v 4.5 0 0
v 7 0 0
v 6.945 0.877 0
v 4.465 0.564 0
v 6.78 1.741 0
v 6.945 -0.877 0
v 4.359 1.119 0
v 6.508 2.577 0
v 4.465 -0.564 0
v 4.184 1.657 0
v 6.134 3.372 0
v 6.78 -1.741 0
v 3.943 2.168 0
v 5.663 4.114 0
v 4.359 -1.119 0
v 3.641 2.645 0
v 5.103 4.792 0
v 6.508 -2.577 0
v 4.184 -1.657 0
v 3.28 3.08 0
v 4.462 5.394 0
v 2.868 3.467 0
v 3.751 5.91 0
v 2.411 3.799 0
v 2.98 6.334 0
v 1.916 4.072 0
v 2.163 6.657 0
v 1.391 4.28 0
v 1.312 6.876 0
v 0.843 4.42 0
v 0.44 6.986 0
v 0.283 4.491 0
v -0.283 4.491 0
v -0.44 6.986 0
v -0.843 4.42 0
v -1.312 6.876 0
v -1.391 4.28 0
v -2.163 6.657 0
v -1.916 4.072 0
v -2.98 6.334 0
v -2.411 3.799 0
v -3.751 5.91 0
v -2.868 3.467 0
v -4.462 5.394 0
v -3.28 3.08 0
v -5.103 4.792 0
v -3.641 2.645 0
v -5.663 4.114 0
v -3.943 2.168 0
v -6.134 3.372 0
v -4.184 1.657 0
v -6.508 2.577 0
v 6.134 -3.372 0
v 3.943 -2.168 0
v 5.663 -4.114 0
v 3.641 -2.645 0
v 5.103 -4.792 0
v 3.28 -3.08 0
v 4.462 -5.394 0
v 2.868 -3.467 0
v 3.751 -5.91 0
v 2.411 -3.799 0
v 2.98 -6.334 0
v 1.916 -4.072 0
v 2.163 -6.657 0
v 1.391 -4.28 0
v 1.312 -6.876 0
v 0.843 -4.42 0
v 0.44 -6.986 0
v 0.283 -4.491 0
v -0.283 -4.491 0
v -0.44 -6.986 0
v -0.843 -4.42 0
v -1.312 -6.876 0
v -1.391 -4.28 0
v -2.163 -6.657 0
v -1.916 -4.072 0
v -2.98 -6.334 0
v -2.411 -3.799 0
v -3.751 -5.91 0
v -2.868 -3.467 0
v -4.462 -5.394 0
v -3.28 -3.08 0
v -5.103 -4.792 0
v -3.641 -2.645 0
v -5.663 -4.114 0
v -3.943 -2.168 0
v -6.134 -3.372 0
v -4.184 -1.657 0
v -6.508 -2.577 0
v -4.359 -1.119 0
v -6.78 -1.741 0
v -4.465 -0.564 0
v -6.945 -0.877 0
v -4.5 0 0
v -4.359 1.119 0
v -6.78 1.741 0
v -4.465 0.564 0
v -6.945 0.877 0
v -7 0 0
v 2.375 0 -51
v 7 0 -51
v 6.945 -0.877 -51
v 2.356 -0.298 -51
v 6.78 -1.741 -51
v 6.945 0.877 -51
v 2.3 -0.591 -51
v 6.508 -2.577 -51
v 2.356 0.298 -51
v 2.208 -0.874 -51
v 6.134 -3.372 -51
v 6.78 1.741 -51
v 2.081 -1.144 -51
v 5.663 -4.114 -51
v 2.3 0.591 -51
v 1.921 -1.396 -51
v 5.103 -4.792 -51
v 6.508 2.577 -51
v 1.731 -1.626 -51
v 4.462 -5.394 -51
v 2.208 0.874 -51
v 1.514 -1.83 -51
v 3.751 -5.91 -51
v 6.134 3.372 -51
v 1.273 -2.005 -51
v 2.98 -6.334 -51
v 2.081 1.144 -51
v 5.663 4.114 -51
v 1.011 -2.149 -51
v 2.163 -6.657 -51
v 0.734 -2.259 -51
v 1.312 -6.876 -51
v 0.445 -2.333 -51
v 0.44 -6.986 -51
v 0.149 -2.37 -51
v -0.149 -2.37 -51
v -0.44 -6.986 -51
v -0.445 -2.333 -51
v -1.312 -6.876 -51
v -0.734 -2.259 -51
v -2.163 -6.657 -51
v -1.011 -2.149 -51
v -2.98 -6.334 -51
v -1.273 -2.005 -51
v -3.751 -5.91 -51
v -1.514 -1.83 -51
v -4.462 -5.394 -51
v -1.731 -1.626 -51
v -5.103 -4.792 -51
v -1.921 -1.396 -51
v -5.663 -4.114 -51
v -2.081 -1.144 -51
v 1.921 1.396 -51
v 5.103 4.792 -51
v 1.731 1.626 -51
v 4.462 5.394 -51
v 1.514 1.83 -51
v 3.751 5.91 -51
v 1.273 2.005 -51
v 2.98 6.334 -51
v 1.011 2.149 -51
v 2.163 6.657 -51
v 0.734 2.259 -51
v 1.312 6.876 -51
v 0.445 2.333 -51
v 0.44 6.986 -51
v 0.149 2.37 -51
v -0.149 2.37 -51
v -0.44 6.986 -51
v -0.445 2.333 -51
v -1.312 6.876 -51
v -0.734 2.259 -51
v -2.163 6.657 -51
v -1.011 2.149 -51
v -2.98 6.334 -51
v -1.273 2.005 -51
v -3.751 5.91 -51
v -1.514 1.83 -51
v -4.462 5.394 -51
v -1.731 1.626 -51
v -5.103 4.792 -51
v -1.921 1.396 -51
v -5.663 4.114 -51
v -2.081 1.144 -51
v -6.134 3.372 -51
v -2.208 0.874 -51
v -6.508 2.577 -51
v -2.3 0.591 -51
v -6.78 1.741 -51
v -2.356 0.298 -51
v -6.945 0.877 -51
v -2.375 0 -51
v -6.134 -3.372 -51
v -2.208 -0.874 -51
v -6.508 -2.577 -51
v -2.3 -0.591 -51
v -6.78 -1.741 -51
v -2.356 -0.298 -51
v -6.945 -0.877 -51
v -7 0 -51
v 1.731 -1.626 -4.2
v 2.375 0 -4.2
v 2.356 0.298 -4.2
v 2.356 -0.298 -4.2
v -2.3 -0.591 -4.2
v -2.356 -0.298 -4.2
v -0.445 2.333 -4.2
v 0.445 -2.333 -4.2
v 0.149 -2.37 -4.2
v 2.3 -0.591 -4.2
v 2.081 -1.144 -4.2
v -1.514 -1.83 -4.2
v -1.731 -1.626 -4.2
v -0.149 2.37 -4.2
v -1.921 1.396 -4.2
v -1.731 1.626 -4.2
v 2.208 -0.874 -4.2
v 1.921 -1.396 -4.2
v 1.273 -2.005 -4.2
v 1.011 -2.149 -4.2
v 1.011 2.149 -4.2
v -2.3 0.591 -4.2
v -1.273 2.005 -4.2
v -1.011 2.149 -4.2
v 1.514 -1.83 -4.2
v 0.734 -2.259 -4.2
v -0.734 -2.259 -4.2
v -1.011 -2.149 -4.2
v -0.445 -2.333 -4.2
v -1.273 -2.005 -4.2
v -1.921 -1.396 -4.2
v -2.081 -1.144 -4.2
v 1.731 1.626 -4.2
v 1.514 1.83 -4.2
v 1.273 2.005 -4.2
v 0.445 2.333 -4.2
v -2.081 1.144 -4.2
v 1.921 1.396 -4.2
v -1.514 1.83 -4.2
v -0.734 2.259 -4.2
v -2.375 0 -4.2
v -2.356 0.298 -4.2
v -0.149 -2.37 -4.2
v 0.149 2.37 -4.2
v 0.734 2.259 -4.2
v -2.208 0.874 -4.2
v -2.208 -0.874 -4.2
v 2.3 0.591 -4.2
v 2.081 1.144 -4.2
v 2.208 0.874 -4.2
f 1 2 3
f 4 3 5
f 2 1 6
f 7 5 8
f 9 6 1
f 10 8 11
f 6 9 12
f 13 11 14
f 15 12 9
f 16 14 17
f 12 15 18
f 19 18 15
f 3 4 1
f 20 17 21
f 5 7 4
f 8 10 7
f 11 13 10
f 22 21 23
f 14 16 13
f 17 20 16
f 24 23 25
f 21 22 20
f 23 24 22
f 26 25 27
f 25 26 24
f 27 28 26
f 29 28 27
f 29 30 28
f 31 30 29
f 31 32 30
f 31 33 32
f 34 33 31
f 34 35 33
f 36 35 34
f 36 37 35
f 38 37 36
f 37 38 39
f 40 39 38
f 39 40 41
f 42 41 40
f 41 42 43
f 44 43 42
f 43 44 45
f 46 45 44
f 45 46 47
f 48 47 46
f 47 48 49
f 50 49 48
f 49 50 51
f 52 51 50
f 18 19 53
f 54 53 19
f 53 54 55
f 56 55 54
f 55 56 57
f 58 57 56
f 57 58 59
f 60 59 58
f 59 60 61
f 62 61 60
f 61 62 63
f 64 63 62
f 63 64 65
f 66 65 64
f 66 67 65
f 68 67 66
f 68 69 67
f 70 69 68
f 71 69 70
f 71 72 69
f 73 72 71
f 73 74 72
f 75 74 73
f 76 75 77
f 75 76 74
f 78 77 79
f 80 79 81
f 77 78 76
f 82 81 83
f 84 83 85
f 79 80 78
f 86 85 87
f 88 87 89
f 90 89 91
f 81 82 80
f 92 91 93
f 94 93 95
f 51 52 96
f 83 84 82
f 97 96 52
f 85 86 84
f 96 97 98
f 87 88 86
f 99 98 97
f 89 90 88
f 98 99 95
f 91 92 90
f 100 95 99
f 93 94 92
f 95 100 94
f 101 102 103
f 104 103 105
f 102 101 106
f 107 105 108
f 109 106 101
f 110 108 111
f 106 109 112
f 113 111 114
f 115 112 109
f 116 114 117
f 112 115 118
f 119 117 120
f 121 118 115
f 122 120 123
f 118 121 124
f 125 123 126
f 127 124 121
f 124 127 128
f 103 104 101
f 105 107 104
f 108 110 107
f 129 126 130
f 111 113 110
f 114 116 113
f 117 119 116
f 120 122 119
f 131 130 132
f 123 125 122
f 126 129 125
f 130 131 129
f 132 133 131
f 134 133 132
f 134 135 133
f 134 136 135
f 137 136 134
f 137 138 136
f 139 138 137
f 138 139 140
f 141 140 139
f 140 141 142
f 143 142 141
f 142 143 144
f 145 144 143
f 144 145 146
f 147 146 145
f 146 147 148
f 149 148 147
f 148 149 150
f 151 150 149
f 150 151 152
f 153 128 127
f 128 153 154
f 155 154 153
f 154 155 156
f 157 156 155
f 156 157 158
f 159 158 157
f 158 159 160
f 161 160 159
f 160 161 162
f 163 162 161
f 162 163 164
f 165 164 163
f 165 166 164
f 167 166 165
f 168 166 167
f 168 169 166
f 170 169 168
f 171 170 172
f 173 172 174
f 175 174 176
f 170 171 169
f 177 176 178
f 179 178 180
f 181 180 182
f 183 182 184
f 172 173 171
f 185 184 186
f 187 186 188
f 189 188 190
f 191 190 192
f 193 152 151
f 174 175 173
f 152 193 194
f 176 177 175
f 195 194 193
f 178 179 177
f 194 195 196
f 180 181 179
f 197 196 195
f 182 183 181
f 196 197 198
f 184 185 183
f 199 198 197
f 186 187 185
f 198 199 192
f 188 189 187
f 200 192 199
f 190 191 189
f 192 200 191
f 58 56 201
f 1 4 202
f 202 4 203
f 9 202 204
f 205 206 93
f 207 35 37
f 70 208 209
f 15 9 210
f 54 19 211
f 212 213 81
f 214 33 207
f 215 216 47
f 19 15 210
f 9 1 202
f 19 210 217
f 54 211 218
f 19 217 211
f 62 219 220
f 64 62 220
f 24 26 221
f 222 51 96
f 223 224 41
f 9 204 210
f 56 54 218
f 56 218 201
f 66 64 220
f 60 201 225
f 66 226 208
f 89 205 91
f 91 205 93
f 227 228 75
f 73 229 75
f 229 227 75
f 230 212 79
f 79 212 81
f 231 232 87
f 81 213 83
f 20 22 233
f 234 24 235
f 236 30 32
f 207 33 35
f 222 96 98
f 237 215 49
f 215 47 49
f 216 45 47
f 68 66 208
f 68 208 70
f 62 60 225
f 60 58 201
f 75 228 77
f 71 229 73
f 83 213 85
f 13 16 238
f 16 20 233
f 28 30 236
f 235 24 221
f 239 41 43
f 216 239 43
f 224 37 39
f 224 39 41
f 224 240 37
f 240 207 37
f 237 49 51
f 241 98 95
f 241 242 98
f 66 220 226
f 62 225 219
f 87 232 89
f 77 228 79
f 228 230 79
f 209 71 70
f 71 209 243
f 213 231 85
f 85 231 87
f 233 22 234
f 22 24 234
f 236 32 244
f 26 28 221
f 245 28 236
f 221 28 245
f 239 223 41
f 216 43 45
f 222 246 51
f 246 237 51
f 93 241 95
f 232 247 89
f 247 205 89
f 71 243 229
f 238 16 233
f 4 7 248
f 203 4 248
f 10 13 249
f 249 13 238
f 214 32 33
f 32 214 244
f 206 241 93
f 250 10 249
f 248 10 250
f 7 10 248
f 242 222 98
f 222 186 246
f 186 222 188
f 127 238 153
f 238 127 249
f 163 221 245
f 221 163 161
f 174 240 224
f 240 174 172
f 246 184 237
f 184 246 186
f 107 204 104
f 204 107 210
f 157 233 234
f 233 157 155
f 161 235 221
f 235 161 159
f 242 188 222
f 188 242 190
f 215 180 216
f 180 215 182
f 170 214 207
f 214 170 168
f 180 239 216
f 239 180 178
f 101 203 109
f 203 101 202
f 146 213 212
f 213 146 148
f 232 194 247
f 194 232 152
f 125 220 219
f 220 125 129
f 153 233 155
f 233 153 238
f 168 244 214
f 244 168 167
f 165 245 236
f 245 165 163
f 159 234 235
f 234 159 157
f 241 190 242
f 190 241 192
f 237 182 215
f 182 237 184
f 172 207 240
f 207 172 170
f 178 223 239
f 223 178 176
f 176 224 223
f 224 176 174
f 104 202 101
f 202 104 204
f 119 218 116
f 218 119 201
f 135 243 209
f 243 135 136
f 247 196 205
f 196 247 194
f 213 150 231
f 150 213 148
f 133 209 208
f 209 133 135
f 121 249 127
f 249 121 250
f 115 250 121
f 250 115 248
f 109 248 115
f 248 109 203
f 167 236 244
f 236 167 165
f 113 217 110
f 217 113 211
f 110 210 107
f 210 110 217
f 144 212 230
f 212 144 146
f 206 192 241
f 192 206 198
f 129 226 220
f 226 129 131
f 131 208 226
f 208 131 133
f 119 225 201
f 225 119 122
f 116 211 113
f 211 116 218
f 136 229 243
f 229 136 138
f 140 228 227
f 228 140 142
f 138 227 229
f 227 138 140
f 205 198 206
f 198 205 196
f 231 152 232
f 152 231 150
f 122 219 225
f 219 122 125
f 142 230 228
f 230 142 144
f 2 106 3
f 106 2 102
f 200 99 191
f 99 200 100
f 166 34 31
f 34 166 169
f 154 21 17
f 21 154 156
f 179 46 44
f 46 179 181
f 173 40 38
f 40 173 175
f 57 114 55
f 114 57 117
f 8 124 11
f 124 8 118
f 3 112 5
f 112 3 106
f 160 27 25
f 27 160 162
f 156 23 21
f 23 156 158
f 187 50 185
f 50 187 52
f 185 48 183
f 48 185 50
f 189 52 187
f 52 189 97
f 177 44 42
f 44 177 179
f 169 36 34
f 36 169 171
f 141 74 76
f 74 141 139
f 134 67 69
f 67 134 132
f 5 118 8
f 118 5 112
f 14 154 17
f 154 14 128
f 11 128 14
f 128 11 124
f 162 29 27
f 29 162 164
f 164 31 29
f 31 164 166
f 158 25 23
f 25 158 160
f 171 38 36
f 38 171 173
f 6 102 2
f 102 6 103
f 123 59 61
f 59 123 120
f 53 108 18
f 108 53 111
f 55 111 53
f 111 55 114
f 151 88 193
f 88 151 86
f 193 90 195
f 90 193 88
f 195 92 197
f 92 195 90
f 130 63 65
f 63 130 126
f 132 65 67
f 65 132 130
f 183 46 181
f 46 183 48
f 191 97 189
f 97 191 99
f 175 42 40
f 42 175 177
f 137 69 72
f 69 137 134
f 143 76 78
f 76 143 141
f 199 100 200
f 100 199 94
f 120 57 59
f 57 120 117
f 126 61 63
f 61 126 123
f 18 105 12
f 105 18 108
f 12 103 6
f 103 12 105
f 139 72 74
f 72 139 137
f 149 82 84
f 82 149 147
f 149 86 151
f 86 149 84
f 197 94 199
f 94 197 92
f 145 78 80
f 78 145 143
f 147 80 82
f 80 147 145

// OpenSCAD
$fn = 50;


difference() {
	union() {
		translate(v = [0, 0, -51.0000000000]) {
			cylinder(h = 51, r = 7.0000000000);
		}
		cylinder(h = 0, r = 13.0000000000);
	}
	union() {
		translate(v = [0, 0, 0]) {
			rotate(a = [0, 0, 0]) {
				difference() {
					union() {
						#translate(v = [0, 0, -51.0000000000]) {
							cylinder(h = 51, r = 2.2500000000);
						}
						#translate(v = [0, 0, -4.2000000000]) {
							cylinder(h = 4.2000000000, r1 = 2.3750000000, r2 = 4.5000000000);
						}
						#translate(v = [0, 0, -51.0000000000]) {
							cylinder(h = 51, r = 2.3750000000);
						}
						#translate(v = [0, 0, -51.0000000000]) {
							cylinder(h = 51, r = 2.2500000000);
						}
					}
					union();
				}
			}
		}
	}
}
